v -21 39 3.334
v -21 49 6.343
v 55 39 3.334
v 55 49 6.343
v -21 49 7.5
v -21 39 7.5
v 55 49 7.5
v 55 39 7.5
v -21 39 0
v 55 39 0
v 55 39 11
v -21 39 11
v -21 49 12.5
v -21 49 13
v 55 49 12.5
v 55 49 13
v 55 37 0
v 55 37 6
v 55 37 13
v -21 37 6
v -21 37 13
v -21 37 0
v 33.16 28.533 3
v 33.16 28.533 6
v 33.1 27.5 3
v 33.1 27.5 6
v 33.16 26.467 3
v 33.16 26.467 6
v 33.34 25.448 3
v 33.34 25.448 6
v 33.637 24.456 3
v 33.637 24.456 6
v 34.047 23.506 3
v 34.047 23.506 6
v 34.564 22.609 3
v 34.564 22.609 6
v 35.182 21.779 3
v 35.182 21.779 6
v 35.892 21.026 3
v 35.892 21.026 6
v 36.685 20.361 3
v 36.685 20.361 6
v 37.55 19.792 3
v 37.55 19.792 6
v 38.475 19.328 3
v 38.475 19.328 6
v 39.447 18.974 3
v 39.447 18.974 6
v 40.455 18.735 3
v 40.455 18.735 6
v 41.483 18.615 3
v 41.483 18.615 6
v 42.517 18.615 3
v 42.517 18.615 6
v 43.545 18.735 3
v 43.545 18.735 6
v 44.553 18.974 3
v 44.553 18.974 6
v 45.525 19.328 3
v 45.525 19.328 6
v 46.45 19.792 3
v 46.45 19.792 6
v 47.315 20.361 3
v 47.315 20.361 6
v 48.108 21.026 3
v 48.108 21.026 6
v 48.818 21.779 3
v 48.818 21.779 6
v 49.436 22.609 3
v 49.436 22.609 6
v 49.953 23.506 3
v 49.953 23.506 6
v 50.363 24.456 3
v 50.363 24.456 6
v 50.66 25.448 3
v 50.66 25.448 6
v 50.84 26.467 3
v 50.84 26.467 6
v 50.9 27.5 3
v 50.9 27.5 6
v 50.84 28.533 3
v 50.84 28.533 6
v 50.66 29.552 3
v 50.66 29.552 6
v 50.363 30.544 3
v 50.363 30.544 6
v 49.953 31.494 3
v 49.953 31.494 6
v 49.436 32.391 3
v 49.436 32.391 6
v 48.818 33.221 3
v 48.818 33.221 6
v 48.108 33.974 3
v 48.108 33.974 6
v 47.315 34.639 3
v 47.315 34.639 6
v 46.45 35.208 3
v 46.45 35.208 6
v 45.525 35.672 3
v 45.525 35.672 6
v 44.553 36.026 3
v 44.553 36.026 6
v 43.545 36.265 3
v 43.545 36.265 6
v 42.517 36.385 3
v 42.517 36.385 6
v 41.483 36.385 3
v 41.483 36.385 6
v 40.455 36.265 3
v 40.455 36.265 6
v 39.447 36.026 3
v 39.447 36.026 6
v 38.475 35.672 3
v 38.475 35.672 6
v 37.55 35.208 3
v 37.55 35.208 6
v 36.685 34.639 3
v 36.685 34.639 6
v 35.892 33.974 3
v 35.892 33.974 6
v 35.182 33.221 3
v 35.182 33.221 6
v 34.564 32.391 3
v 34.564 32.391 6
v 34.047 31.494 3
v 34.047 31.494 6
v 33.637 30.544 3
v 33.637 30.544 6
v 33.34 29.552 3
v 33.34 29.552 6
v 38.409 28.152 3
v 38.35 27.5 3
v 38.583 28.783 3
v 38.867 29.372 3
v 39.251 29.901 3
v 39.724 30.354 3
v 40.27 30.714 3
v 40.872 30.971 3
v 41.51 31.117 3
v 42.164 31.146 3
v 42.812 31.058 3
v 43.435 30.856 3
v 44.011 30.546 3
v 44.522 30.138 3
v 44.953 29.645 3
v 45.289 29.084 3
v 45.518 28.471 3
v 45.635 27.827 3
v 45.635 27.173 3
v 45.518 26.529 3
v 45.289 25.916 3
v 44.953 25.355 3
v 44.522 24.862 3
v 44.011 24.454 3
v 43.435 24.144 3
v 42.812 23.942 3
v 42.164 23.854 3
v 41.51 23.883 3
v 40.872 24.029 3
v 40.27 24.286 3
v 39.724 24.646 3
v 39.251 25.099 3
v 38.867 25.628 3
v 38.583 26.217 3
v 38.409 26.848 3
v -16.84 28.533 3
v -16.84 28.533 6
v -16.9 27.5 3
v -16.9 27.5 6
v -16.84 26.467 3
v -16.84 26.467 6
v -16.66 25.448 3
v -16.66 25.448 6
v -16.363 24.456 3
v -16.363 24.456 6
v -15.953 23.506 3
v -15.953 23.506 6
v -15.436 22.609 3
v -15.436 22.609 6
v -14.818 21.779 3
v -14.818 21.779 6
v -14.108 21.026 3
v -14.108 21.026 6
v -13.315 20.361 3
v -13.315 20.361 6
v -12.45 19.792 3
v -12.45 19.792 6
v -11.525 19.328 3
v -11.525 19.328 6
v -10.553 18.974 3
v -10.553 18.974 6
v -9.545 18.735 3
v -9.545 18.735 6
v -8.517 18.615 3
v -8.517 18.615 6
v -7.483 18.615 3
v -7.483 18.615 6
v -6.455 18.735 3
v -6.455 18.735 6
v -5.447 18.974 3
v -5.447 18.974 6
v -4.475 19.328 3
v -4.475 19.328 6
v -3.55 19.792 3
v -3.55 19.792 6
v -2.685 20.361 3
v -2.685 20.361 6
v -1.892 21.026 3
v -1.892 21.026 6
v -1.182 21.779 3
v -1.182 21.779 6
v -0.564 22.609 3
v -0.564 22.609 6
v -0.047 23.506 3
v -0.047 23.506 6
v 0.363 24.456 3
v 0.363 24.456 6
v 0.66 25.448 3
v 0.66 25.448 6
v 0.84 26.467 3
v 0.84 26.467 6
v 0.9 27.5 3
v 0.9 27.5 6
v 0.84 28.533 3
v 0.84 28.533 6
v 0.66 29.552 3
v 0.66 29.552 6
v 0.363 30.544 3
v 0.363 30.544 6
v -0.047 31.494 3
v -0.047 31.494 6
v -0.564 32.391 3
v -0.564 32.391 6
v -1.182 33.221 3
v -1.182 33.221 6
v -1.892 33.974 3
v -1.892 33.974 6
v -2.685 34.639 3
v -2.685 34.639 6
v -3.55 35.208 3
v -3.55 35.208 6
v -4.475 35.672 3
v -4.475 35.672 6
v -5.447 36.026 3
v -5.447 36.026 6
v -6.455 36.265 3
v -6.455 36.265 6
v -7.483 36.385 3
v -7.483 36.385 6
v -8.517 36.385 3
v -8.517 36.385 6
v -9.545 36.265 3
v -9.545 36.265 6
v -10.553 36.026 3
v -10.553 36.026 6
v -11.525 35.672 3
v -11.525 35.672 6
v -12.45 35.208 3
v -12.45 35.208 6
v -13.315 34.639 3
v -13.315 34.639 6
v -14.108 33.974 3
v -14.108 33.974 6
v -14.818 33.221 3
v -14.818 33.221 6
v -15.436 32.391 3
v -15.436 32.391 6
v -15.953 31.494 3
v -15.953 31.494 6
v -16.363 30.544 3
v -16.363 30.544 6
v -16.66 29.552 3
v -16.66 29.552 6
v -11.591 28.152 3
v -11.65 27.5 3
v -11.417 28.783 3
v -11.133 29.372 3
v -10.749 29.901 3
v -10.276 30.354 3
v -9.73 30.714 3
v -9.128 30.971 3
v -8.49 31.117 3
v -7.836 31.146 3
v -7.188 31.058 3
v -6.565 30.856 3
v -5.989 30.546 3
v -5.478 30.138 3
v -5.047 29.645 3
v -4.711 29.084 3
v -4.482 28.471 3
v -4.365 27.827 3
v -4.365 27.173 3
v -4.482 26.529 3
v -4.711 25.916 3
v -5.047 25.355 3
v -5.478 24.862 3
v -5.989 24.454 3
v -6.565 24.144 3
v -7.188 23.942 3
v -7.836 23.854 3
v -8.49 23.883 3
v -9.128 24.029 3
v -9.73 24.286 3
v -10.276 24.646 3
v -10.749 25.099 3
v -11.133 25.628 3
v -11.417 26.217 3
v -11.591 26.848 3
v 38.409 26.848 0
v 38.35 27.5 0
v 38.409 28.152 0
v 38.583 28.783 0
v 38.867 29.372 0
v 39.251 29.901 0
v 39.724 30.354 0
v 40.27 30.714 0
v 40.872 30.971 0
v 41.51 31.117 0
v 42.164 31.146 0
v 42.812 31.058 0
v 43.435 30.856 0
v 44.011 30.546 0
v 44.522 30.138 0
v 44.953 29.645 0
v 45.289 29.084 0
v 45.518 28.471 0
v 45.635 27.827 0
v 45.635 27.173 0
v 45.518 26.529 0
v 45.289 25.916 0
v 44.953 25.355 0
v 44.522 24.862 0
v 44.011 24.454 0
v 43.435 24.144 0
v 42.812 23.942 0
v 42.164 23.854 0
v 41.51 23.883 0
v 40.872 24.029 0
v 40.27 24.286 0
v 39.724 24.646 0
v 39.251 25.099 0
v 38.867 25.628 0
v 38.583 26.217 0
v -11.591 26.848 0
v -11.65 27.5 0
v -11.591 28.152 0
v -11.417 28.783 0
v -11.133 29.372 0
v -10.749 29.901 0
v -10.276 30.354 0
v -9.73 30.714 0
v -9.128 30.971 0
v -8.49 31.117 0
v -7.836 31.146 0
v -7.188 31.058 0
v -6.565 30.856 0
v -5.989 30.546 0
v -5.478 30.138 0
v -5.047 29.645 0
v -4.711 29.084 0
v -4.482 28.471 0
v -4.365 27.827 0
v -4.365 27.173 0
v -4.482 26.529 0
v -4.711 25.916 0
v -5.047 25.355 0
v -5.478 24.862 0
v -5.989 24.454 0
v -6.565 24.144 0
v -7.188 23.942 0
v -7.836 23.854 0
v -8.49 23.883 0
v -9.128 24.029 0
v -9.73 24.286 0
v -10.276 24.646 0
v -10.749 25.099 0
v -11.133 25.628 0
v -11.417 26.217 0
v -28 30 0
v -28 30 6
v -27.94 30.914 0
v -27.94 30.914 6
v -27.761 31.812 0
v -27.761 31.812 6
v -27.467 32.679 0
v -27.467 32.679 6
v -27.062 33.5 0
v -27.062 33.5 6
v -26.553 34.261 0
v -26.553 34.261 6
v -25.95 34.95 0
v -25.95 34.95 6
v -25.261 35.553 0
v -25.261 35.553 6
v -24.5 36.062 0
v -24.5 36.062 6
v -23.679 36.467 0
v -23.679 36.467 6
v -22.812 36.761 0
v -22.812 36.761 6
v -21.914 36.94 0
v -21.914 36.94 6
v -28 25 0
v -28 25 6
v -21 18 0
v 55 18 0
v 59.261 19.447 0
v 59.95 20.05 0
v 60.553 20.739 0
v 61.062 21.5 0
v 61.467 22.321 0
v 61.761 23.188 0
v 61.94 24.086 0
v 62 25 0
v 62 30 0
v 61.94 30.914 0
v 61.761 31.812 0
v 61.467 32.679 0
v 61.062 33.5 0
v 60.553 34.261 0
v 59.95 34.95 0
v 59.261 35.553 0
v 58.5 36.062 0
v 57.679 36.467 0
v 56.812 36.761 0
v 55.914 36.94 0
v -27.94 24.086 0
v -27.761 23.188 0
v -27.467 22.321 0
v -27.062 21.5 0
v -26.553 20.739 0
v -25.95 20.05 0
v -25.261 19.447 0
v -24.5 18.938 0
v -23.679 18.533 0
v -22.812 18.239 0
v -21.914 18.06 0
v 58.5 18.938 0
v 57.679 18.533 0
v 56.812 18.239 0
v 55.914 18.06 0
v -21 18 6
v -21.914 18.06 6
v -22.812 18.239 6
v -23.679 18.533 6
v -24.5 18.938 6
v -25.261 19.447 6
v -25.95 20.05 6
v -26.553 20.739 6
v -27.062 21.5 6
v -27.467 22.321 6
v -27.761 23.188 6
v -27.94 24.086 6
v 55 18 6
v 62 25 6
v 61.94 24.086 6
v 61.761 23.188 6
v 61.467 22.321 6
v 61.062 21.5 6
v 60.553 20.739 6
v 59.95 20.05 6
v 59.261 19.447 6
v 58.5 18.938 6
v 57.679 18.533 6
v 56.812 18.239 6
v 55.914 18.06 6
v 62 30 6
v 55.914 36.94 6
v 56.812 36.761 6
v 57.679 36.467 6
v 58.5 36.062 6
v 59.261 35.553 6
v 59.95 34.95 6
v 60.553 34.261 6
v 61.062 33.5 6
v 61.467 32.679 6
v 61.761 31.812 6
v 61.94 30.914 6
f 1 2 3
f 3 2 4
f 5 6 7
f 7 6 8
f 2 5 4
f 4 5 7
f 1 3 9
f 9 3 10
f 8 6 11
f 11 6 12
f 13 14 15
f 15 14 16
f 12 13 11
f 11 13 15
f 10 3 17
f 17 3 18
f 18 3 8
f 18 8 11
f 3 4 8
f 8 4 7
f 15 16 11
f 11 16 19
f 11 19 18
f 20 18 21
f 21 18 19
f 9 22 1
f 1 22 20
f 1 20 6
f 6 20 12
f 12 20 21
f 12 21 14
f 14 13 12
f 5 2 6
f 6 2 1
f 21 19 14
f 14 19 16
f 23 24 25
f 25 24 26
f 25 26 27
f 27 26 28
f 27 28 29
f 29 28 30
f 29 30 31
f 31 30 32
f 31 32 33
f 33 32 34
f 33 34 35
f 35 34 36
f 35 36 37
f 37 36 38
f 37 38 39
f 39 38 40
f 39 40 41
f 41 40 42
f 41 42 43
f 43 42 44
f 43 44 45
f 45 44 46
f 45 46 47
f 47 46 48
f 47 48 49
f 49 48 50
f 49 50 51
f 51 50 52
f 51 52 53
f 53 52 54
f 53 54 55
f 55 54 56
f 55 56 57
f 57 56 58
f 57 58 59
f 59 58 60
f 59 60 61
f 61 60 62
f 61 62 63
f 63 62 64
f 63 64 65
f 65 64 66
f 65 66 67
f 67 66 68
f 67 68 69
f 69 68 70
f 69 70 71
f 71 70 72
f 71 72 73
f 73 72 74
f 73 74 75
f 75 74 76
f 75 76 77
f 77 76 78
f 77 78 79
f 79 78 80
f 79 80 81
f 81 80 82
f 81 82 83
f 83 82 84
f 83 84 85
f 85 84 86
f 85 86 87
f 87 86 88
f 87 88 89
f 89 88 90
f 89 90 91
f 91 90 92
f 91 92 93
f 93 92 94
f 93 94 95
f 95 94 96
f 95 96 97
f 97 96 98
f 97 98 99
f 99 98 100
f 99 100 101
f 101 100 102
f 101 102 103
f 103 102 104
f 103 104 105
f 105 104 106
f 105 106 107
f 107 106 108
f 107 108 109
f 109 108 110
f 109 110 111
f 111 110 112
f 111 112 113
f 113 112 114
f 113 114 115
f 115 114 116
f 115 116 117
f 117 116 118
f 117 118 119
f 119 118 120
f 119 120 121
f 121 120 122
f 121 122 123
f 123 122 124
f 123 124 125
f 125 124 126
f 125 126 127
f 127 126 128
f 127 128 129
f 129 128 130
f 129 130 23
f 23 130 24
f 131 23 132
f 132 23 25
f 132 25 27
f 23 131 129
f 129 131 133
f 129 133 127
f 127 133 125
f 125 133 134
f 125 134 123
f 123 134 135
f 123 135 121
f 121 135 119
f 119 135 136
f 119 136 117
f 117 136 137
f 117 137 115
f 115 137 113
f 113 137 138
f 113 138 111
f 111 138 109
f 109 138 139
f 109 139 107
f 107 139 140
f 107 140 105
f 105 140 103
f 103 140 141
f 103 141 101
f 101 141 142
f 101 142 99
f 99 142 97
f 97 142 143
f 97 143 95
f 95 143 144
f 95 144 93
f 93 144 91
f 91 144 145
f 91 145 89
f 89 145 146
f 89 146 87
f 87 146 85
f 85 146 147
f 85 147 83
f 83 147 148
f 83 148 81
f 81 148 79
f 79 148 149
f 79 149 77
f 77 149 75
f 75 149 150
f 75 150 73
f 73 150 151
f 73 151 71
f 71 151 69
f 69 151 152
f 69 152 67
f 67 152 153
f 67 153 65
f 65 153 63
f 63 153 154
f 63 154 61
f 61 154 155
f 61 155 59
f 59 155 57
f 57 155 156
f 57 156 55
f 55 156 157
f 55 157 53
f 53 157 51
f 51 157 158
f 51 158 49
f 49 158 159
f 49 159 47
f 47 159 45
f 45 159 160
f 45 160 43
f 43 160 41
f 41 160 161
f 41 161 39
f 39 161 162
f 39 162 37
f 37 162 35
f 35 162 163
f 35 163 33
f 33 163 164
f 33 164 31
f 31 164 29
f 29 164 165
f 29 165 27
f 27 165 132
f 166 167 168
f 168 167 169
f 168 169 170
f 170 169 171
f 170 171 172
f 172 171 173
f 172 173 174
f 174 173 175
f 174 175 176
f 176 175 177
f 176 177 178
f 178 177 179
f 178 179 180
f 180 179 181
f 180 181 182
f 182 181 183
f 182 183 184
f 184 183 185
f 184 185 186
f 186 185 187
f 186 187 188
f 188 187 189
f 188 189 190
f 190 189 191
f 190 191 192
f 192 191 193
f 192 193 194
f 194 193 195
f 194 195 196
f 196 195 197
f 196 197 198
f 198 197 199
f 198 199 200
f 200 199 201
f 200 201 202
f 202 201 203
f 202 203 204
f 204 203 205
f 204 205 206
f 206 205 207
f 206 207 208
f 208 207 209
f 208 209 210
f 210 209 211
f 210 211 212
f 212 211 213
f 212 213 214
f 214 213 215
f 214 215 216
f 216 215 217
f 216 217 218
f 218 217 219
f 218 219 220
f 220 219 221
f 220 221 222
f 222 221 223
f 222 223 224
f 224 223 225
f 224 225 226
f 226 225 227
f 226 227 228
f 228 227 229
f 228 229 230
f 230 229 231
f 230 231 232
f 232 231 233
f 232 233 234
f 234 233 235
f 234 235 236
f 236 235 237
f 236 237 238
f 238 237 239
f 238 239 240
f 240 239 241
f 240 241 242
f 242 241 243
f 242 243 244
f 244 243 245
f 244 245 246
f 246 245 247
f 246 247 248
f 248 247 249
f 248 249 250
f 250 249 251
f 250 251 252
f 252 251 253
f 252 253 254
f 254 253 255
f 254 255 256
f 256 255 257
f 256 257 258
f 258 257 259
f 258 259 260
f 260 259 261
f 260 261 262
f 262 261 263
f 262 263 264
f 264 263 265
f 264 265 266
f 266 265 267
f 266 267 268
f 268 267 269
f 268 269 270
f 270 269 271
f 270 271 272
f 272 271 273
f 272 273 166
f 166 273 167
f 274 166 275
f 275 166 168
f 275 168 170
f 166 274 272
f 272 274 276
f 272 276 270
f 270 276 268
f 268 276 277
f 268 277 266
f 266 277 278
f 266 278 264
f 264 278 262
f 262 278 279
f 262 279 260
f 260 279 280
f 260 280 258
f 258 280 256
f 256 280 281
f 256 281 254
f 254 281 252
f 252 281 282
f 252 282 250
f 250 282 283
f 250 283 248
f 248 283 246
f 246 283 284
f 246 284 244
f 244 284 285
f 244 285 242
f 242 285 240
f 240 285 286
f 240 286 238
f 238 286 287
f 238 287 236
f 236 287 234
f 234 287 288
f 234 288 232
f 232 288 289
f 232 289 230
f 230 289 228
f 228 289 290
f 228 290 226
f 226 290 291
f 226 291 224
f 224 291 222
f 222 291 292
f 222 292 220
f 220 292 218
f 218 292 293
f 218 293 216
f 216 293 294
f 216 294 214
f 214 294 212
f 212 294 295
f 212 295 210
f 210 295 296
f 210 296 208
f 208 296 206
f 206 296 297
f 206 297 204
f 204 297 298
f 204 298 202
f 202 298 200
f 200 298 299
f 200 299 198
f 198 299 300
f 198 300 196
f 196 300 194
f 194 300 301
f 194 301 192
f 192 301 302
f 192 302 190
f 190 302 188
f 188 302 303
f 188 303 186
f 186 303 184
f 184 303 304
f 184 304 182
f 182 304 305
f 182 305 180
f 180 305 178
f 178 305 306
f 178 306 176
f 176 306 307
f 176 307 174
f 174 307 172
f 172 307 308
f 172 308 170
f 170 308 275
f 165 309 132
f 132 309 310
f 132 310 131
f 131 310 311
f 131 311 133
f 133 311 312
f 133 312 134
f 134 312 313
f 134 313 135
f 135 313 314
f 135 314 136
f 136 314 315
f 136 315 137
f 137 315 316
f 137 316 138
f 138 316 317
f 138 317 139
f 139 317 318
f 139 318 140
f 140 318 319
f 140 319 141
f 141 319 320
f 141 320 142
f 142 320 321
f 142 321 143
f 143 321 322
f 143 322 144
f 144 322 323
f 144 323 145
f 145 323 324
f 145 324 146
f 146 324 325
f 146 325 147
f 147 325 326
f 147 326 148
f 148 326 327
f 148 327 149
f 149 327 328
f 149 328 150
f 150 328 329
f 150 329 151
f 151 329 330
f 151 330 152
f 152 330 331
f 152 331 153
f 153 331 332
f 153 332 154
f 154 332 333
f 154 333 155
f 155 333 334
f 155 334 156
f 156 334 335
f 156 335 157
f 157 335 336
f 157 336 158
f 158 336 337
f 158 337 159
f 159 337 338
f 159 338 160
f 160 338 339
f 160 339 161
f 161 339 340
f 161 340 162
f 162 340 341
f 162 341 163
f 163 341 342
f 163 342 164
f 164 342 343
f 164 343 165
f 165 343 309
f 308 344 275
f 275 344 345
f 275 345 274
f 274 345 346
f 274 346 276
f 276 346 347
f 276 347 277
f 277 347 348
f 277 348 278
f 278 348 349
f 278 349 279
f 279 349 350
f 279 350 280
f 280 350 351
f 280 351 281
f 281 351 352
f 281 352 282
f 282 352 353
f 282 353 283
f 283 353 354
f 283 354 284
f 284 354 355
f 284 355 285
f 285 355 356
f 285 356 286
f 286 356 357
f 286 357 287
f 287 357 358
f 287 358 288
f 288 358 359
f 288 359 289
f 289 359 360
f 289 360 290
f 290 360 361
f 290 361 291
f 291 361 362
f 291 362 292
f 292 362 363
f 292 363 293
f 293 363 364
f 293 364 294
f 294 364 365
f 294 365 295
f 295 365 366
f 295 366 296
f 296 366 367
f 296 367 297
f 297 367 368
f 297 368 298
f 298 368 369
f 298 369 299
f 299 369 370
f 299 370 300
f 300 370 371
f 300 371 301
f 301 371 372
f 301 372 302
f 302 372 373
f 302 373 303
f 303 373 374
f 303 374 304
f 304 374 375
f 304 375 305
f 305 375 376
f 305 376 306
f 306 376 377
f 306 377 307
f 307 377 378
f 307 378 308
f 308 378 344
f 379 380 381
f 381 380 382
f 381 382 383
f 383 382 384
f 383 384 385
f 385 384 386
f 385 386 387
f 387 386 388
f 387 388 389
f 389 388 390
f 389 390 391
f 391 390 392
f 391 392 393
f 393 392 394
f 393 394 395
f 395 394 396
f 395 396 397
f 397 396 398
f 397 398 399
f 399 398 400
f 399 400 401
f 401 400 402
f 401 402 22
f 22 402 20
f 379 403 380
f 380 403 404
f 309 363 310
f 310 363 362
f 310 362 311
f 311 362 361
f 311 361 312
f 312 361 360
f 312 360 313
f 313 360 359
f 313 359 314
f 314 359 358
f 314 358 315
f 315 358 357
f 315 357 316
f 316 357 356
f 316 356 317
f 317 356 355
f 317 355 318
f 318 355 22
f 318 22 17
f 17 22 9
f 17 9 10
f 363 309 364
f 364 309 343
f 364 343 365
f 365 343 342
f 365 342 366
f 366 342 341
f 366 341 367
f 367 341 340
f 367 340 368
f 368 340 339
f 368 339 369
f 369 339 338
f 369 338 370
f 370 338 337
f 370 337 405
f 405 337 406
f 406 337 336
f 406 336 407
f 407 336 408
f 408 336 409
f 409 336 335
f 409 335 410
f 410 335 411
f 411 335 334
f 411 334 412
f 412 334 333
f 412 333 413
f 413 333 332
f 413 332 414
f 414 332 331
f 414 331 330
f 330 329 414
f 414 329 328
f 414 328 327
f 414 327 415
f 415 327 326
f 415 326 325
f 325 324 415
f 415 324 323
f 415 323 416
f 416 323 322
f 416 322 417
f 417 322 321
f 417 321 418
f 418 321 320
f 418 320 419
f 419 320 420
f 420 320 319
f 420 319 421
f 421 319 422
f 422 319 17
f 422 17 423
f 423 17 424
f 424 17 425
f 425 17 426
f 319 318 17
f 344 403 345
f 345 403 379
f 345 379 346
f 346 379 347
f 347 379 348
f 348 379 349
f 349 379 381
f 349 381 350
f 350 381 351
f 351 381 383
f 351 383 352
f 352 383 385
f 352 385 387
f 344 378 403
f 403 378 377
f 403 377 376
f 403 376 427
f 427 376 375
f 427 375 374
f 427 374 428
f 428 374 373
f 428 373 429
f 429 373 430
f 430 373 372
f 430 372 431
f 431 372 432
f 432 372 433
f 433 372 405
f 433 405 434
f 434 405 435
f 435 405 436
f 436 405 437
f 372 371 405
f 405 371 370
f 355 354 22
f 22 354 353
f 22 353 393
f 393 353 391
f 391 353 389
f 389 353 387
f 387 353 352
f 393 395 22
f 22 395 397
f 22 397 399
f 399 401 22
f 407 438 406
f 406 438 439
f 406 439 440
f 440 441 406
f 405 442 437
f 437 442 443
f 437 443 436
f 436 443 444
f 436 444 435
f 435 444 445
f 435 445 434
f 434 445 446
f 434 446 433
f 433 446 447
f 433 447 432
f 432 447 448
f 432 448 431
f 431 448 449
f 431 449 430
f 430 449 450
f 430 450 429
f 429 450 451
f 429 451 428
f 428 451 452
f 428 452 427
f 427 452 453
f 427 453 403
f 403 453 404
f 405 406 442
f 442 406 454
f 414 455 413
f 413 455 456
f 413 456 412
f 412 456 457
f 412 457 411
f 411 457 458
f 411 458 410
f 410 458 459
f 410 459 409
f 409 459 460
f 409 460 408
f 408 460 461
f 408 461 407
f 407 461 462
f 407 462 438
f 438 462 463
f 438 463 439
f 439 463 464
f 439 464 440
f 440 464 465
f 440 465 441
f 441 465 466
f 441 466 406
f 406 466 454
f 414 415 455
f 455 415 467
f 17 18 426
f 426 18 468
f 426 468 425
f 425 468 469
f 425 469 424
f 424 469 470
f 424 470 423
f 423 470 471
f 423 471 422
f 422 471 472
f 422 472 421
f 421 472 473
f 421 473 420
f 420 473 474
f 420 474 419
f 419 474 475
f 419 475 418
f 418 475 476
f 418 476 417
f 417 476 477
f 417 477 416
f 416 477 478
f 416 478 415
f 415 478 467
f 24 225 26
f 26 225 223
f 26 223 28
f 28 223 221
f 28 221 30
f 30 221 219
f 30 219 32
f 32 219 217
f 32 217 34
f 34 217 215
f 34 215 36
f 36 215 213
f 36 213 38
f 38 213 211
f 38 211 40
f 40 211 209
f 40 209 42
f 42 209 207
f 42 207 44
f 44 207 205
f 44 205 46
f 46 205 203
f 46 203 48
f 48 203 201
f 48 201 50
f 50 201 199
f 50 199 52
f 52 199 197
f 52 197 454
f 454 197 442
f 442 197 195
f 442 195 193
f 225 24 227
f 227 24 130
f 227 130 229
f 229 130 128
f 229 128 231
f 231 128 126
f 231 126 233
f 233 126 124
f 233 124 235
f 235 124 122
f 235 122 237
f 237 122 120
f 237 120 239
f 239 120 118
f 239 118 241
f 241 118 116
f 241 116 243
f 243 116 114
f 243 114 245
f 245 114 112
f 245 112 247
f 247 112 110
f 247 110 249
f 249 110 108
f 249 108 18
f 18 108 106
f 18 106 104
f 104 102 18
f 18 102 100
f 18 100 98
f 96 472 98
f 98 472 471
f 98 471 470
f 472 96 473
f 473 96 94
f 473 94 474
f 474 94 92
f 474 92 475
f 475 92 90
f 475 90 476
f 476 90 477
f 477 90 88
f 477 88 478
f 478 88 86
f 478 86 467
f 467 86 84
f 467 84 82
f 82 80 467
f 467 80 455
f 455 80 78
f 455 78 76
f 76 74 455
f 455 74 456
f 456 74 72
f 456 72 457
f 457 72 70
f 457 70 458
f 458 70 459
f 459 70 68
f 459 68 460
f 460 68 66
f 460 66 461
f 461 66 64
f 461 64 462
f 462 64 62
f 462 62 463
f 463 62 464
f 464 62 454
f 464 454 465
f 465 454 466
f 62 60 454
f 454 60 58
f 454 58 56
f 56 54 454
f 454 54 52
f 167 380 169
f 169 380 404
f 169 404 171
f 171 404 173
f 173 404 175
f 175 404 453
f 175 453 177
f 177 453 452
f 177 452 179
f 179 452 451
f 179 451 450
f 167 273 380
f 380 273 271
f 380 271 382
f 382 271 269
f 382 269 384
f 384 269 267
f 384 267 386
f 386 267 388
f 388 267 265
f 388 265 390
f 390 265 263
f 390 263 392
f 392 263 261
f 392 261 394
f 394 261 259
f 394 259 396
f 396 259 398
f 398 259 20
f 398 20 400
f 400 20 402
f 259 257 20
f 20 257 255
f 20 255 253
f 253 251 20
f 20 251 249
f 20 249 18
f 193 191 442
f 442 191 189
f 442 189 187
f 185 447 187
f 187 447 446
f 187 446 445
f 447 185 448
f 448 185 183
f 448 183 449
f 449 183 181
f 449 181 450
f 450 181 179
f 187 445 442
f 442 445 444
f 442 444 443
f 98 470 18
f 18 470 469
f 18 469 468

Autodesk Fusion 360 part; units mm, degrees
sketch "Sketch1" plane through (0, 0, 0) normal (0, 0, 1) x (1, 0, 0)
  line L0 (-28, 37) -> (62, 37)
  line L1 (62, 37) -> (62, 18)
  line L2 (62, 18) -> (-28, 18)
  line L3 (-28, 18) -> (-28, 37)
  dimension "d1" = 90
  dimension "d2" = 19
extrude "Extrude1" add sketch "Sketch1" along normal blind 6
fillet "Fillet1" radius 7 3 edges at (62, 37, 3) (62, 18, 3) (-28, 18, 3)
fillet "Fillet2" radius 7 1 edges at (-28, 37, 3)
sketch "Sketch2" plane through (0, 0, 6) normal (0, 0, 1) x (-1, 0, 0)
  arc A0 (21, -37) -> (28, -30) centre (21, -30) ccw
  line L0 (28, -30) -> (28, -25)
  arc A1 (28, -25) -> (21, -18) centre (21, -25) ccw
  line L1 (21, -18) -> (-55, -18)
  arc A2 (-55, -18) -> (-62, -25) centre (-55, -25) ccw
  line L2 (-62, -25) -> (-62, -30)
  arc A3 (-62, -30) -> (-55, -37) centre (-55, -30) ccw
  line L3 (-55, -37) -> (21, -37)
ref_plane "WorkPlane1" through (17, 27.5, 6) normal (0, 0, 1) x (-1, 0, 0)
sketch "Sketch3" plane through (0, 0, 6) normal (0, 0, 1) x (1, 0, 0)
  line L0 (17, 37) -> (17, 18)
  circle A0 centre (-8, 27.5) radius 8.9
  circle A1 centre (42, 27.5) radius 8.9
  circle A2 centre (-8, 27.5) radius 3.65
  circle A3 centre (42, 27.5) radius 3.65
  dimension "d13" = 17.8
  dimension "d14" = 17.8
  dimension "d15" = 7.3
  dimension "d16" = 7.3
extrude "Extrude2" cut sketch "Sketch3" against normal blind 7 contours A2 | A3
extrude "Extrude3" cut sketch "Sketch3" against normal blind 3
sketch "Sketch4" plane through (0, 0, 0) normal (0, 0, 1) x (1, 0, 0)
  line L0 (-21, 37) -> (55, 37)
  line L1 (55, 37) -> (55, 39)
  line L2 (55, 39) -> (-21, 39)
  line L3 (-21, 39) -> (-21, 37)
  dimension "d21" = 76
  dimension "d22" = 2
extrude "Extrude4" add sketch "Sketch4" along normal blind 13
ref_plane "WorkPlane2" through (-21, 38, 6.5) normal (-1, 0, 0) x (0, -1, 0)
sketch "Sketch5" plane through (-21, 0, 0) normal (-1, 0, 0) x (0, -1, 0)
  line L0 (-39, 13) -> (-49, 13)
  line L1 (-49, 13) -> (-49, 12)
  line L2 (-39, 13) -> (-39, 11)
  line L3 (-49, 12.5) -> (-39, 11)
  dimension "d26" = 10
  dimension "d27" = 1
extrude "Extrude5" add sketch "Sketch5" against normal blind 76
sketch "Sketch6" plane through (-21, 0, 0) normal (-1, 0, 0) x (0, -1, 0)
  line L0 (-39, 0) -> (-37, 0)
  line L1 (-37, 0) -> (-37, 6)
  line L2 (-37, 6) -> (-37, 13)
  line L3 (-37, 13) -> (-49, 13)
  line L4 (-49, 13) -> (-49, 12.5)
  line L5 (-49, 12.5) -> (-39, 11)
  line L6 (-39, 11) -> (-39, 0)
  line L7 (-39, 7.5) -> (-49, 7.5)
  line L8 (-49, 7.5) -> (-49, 6.3428)
  line L9 (-49, 6.3428) -> (-39, 3.3342)
  line L10 (-39, 7.5) -> (-39, 3.3342)
  dimension "d34" = 10
extrude "Extrude6" add sketch "Sketch6" against normal blind 76 contours L6 L7 L8 L9 L10
